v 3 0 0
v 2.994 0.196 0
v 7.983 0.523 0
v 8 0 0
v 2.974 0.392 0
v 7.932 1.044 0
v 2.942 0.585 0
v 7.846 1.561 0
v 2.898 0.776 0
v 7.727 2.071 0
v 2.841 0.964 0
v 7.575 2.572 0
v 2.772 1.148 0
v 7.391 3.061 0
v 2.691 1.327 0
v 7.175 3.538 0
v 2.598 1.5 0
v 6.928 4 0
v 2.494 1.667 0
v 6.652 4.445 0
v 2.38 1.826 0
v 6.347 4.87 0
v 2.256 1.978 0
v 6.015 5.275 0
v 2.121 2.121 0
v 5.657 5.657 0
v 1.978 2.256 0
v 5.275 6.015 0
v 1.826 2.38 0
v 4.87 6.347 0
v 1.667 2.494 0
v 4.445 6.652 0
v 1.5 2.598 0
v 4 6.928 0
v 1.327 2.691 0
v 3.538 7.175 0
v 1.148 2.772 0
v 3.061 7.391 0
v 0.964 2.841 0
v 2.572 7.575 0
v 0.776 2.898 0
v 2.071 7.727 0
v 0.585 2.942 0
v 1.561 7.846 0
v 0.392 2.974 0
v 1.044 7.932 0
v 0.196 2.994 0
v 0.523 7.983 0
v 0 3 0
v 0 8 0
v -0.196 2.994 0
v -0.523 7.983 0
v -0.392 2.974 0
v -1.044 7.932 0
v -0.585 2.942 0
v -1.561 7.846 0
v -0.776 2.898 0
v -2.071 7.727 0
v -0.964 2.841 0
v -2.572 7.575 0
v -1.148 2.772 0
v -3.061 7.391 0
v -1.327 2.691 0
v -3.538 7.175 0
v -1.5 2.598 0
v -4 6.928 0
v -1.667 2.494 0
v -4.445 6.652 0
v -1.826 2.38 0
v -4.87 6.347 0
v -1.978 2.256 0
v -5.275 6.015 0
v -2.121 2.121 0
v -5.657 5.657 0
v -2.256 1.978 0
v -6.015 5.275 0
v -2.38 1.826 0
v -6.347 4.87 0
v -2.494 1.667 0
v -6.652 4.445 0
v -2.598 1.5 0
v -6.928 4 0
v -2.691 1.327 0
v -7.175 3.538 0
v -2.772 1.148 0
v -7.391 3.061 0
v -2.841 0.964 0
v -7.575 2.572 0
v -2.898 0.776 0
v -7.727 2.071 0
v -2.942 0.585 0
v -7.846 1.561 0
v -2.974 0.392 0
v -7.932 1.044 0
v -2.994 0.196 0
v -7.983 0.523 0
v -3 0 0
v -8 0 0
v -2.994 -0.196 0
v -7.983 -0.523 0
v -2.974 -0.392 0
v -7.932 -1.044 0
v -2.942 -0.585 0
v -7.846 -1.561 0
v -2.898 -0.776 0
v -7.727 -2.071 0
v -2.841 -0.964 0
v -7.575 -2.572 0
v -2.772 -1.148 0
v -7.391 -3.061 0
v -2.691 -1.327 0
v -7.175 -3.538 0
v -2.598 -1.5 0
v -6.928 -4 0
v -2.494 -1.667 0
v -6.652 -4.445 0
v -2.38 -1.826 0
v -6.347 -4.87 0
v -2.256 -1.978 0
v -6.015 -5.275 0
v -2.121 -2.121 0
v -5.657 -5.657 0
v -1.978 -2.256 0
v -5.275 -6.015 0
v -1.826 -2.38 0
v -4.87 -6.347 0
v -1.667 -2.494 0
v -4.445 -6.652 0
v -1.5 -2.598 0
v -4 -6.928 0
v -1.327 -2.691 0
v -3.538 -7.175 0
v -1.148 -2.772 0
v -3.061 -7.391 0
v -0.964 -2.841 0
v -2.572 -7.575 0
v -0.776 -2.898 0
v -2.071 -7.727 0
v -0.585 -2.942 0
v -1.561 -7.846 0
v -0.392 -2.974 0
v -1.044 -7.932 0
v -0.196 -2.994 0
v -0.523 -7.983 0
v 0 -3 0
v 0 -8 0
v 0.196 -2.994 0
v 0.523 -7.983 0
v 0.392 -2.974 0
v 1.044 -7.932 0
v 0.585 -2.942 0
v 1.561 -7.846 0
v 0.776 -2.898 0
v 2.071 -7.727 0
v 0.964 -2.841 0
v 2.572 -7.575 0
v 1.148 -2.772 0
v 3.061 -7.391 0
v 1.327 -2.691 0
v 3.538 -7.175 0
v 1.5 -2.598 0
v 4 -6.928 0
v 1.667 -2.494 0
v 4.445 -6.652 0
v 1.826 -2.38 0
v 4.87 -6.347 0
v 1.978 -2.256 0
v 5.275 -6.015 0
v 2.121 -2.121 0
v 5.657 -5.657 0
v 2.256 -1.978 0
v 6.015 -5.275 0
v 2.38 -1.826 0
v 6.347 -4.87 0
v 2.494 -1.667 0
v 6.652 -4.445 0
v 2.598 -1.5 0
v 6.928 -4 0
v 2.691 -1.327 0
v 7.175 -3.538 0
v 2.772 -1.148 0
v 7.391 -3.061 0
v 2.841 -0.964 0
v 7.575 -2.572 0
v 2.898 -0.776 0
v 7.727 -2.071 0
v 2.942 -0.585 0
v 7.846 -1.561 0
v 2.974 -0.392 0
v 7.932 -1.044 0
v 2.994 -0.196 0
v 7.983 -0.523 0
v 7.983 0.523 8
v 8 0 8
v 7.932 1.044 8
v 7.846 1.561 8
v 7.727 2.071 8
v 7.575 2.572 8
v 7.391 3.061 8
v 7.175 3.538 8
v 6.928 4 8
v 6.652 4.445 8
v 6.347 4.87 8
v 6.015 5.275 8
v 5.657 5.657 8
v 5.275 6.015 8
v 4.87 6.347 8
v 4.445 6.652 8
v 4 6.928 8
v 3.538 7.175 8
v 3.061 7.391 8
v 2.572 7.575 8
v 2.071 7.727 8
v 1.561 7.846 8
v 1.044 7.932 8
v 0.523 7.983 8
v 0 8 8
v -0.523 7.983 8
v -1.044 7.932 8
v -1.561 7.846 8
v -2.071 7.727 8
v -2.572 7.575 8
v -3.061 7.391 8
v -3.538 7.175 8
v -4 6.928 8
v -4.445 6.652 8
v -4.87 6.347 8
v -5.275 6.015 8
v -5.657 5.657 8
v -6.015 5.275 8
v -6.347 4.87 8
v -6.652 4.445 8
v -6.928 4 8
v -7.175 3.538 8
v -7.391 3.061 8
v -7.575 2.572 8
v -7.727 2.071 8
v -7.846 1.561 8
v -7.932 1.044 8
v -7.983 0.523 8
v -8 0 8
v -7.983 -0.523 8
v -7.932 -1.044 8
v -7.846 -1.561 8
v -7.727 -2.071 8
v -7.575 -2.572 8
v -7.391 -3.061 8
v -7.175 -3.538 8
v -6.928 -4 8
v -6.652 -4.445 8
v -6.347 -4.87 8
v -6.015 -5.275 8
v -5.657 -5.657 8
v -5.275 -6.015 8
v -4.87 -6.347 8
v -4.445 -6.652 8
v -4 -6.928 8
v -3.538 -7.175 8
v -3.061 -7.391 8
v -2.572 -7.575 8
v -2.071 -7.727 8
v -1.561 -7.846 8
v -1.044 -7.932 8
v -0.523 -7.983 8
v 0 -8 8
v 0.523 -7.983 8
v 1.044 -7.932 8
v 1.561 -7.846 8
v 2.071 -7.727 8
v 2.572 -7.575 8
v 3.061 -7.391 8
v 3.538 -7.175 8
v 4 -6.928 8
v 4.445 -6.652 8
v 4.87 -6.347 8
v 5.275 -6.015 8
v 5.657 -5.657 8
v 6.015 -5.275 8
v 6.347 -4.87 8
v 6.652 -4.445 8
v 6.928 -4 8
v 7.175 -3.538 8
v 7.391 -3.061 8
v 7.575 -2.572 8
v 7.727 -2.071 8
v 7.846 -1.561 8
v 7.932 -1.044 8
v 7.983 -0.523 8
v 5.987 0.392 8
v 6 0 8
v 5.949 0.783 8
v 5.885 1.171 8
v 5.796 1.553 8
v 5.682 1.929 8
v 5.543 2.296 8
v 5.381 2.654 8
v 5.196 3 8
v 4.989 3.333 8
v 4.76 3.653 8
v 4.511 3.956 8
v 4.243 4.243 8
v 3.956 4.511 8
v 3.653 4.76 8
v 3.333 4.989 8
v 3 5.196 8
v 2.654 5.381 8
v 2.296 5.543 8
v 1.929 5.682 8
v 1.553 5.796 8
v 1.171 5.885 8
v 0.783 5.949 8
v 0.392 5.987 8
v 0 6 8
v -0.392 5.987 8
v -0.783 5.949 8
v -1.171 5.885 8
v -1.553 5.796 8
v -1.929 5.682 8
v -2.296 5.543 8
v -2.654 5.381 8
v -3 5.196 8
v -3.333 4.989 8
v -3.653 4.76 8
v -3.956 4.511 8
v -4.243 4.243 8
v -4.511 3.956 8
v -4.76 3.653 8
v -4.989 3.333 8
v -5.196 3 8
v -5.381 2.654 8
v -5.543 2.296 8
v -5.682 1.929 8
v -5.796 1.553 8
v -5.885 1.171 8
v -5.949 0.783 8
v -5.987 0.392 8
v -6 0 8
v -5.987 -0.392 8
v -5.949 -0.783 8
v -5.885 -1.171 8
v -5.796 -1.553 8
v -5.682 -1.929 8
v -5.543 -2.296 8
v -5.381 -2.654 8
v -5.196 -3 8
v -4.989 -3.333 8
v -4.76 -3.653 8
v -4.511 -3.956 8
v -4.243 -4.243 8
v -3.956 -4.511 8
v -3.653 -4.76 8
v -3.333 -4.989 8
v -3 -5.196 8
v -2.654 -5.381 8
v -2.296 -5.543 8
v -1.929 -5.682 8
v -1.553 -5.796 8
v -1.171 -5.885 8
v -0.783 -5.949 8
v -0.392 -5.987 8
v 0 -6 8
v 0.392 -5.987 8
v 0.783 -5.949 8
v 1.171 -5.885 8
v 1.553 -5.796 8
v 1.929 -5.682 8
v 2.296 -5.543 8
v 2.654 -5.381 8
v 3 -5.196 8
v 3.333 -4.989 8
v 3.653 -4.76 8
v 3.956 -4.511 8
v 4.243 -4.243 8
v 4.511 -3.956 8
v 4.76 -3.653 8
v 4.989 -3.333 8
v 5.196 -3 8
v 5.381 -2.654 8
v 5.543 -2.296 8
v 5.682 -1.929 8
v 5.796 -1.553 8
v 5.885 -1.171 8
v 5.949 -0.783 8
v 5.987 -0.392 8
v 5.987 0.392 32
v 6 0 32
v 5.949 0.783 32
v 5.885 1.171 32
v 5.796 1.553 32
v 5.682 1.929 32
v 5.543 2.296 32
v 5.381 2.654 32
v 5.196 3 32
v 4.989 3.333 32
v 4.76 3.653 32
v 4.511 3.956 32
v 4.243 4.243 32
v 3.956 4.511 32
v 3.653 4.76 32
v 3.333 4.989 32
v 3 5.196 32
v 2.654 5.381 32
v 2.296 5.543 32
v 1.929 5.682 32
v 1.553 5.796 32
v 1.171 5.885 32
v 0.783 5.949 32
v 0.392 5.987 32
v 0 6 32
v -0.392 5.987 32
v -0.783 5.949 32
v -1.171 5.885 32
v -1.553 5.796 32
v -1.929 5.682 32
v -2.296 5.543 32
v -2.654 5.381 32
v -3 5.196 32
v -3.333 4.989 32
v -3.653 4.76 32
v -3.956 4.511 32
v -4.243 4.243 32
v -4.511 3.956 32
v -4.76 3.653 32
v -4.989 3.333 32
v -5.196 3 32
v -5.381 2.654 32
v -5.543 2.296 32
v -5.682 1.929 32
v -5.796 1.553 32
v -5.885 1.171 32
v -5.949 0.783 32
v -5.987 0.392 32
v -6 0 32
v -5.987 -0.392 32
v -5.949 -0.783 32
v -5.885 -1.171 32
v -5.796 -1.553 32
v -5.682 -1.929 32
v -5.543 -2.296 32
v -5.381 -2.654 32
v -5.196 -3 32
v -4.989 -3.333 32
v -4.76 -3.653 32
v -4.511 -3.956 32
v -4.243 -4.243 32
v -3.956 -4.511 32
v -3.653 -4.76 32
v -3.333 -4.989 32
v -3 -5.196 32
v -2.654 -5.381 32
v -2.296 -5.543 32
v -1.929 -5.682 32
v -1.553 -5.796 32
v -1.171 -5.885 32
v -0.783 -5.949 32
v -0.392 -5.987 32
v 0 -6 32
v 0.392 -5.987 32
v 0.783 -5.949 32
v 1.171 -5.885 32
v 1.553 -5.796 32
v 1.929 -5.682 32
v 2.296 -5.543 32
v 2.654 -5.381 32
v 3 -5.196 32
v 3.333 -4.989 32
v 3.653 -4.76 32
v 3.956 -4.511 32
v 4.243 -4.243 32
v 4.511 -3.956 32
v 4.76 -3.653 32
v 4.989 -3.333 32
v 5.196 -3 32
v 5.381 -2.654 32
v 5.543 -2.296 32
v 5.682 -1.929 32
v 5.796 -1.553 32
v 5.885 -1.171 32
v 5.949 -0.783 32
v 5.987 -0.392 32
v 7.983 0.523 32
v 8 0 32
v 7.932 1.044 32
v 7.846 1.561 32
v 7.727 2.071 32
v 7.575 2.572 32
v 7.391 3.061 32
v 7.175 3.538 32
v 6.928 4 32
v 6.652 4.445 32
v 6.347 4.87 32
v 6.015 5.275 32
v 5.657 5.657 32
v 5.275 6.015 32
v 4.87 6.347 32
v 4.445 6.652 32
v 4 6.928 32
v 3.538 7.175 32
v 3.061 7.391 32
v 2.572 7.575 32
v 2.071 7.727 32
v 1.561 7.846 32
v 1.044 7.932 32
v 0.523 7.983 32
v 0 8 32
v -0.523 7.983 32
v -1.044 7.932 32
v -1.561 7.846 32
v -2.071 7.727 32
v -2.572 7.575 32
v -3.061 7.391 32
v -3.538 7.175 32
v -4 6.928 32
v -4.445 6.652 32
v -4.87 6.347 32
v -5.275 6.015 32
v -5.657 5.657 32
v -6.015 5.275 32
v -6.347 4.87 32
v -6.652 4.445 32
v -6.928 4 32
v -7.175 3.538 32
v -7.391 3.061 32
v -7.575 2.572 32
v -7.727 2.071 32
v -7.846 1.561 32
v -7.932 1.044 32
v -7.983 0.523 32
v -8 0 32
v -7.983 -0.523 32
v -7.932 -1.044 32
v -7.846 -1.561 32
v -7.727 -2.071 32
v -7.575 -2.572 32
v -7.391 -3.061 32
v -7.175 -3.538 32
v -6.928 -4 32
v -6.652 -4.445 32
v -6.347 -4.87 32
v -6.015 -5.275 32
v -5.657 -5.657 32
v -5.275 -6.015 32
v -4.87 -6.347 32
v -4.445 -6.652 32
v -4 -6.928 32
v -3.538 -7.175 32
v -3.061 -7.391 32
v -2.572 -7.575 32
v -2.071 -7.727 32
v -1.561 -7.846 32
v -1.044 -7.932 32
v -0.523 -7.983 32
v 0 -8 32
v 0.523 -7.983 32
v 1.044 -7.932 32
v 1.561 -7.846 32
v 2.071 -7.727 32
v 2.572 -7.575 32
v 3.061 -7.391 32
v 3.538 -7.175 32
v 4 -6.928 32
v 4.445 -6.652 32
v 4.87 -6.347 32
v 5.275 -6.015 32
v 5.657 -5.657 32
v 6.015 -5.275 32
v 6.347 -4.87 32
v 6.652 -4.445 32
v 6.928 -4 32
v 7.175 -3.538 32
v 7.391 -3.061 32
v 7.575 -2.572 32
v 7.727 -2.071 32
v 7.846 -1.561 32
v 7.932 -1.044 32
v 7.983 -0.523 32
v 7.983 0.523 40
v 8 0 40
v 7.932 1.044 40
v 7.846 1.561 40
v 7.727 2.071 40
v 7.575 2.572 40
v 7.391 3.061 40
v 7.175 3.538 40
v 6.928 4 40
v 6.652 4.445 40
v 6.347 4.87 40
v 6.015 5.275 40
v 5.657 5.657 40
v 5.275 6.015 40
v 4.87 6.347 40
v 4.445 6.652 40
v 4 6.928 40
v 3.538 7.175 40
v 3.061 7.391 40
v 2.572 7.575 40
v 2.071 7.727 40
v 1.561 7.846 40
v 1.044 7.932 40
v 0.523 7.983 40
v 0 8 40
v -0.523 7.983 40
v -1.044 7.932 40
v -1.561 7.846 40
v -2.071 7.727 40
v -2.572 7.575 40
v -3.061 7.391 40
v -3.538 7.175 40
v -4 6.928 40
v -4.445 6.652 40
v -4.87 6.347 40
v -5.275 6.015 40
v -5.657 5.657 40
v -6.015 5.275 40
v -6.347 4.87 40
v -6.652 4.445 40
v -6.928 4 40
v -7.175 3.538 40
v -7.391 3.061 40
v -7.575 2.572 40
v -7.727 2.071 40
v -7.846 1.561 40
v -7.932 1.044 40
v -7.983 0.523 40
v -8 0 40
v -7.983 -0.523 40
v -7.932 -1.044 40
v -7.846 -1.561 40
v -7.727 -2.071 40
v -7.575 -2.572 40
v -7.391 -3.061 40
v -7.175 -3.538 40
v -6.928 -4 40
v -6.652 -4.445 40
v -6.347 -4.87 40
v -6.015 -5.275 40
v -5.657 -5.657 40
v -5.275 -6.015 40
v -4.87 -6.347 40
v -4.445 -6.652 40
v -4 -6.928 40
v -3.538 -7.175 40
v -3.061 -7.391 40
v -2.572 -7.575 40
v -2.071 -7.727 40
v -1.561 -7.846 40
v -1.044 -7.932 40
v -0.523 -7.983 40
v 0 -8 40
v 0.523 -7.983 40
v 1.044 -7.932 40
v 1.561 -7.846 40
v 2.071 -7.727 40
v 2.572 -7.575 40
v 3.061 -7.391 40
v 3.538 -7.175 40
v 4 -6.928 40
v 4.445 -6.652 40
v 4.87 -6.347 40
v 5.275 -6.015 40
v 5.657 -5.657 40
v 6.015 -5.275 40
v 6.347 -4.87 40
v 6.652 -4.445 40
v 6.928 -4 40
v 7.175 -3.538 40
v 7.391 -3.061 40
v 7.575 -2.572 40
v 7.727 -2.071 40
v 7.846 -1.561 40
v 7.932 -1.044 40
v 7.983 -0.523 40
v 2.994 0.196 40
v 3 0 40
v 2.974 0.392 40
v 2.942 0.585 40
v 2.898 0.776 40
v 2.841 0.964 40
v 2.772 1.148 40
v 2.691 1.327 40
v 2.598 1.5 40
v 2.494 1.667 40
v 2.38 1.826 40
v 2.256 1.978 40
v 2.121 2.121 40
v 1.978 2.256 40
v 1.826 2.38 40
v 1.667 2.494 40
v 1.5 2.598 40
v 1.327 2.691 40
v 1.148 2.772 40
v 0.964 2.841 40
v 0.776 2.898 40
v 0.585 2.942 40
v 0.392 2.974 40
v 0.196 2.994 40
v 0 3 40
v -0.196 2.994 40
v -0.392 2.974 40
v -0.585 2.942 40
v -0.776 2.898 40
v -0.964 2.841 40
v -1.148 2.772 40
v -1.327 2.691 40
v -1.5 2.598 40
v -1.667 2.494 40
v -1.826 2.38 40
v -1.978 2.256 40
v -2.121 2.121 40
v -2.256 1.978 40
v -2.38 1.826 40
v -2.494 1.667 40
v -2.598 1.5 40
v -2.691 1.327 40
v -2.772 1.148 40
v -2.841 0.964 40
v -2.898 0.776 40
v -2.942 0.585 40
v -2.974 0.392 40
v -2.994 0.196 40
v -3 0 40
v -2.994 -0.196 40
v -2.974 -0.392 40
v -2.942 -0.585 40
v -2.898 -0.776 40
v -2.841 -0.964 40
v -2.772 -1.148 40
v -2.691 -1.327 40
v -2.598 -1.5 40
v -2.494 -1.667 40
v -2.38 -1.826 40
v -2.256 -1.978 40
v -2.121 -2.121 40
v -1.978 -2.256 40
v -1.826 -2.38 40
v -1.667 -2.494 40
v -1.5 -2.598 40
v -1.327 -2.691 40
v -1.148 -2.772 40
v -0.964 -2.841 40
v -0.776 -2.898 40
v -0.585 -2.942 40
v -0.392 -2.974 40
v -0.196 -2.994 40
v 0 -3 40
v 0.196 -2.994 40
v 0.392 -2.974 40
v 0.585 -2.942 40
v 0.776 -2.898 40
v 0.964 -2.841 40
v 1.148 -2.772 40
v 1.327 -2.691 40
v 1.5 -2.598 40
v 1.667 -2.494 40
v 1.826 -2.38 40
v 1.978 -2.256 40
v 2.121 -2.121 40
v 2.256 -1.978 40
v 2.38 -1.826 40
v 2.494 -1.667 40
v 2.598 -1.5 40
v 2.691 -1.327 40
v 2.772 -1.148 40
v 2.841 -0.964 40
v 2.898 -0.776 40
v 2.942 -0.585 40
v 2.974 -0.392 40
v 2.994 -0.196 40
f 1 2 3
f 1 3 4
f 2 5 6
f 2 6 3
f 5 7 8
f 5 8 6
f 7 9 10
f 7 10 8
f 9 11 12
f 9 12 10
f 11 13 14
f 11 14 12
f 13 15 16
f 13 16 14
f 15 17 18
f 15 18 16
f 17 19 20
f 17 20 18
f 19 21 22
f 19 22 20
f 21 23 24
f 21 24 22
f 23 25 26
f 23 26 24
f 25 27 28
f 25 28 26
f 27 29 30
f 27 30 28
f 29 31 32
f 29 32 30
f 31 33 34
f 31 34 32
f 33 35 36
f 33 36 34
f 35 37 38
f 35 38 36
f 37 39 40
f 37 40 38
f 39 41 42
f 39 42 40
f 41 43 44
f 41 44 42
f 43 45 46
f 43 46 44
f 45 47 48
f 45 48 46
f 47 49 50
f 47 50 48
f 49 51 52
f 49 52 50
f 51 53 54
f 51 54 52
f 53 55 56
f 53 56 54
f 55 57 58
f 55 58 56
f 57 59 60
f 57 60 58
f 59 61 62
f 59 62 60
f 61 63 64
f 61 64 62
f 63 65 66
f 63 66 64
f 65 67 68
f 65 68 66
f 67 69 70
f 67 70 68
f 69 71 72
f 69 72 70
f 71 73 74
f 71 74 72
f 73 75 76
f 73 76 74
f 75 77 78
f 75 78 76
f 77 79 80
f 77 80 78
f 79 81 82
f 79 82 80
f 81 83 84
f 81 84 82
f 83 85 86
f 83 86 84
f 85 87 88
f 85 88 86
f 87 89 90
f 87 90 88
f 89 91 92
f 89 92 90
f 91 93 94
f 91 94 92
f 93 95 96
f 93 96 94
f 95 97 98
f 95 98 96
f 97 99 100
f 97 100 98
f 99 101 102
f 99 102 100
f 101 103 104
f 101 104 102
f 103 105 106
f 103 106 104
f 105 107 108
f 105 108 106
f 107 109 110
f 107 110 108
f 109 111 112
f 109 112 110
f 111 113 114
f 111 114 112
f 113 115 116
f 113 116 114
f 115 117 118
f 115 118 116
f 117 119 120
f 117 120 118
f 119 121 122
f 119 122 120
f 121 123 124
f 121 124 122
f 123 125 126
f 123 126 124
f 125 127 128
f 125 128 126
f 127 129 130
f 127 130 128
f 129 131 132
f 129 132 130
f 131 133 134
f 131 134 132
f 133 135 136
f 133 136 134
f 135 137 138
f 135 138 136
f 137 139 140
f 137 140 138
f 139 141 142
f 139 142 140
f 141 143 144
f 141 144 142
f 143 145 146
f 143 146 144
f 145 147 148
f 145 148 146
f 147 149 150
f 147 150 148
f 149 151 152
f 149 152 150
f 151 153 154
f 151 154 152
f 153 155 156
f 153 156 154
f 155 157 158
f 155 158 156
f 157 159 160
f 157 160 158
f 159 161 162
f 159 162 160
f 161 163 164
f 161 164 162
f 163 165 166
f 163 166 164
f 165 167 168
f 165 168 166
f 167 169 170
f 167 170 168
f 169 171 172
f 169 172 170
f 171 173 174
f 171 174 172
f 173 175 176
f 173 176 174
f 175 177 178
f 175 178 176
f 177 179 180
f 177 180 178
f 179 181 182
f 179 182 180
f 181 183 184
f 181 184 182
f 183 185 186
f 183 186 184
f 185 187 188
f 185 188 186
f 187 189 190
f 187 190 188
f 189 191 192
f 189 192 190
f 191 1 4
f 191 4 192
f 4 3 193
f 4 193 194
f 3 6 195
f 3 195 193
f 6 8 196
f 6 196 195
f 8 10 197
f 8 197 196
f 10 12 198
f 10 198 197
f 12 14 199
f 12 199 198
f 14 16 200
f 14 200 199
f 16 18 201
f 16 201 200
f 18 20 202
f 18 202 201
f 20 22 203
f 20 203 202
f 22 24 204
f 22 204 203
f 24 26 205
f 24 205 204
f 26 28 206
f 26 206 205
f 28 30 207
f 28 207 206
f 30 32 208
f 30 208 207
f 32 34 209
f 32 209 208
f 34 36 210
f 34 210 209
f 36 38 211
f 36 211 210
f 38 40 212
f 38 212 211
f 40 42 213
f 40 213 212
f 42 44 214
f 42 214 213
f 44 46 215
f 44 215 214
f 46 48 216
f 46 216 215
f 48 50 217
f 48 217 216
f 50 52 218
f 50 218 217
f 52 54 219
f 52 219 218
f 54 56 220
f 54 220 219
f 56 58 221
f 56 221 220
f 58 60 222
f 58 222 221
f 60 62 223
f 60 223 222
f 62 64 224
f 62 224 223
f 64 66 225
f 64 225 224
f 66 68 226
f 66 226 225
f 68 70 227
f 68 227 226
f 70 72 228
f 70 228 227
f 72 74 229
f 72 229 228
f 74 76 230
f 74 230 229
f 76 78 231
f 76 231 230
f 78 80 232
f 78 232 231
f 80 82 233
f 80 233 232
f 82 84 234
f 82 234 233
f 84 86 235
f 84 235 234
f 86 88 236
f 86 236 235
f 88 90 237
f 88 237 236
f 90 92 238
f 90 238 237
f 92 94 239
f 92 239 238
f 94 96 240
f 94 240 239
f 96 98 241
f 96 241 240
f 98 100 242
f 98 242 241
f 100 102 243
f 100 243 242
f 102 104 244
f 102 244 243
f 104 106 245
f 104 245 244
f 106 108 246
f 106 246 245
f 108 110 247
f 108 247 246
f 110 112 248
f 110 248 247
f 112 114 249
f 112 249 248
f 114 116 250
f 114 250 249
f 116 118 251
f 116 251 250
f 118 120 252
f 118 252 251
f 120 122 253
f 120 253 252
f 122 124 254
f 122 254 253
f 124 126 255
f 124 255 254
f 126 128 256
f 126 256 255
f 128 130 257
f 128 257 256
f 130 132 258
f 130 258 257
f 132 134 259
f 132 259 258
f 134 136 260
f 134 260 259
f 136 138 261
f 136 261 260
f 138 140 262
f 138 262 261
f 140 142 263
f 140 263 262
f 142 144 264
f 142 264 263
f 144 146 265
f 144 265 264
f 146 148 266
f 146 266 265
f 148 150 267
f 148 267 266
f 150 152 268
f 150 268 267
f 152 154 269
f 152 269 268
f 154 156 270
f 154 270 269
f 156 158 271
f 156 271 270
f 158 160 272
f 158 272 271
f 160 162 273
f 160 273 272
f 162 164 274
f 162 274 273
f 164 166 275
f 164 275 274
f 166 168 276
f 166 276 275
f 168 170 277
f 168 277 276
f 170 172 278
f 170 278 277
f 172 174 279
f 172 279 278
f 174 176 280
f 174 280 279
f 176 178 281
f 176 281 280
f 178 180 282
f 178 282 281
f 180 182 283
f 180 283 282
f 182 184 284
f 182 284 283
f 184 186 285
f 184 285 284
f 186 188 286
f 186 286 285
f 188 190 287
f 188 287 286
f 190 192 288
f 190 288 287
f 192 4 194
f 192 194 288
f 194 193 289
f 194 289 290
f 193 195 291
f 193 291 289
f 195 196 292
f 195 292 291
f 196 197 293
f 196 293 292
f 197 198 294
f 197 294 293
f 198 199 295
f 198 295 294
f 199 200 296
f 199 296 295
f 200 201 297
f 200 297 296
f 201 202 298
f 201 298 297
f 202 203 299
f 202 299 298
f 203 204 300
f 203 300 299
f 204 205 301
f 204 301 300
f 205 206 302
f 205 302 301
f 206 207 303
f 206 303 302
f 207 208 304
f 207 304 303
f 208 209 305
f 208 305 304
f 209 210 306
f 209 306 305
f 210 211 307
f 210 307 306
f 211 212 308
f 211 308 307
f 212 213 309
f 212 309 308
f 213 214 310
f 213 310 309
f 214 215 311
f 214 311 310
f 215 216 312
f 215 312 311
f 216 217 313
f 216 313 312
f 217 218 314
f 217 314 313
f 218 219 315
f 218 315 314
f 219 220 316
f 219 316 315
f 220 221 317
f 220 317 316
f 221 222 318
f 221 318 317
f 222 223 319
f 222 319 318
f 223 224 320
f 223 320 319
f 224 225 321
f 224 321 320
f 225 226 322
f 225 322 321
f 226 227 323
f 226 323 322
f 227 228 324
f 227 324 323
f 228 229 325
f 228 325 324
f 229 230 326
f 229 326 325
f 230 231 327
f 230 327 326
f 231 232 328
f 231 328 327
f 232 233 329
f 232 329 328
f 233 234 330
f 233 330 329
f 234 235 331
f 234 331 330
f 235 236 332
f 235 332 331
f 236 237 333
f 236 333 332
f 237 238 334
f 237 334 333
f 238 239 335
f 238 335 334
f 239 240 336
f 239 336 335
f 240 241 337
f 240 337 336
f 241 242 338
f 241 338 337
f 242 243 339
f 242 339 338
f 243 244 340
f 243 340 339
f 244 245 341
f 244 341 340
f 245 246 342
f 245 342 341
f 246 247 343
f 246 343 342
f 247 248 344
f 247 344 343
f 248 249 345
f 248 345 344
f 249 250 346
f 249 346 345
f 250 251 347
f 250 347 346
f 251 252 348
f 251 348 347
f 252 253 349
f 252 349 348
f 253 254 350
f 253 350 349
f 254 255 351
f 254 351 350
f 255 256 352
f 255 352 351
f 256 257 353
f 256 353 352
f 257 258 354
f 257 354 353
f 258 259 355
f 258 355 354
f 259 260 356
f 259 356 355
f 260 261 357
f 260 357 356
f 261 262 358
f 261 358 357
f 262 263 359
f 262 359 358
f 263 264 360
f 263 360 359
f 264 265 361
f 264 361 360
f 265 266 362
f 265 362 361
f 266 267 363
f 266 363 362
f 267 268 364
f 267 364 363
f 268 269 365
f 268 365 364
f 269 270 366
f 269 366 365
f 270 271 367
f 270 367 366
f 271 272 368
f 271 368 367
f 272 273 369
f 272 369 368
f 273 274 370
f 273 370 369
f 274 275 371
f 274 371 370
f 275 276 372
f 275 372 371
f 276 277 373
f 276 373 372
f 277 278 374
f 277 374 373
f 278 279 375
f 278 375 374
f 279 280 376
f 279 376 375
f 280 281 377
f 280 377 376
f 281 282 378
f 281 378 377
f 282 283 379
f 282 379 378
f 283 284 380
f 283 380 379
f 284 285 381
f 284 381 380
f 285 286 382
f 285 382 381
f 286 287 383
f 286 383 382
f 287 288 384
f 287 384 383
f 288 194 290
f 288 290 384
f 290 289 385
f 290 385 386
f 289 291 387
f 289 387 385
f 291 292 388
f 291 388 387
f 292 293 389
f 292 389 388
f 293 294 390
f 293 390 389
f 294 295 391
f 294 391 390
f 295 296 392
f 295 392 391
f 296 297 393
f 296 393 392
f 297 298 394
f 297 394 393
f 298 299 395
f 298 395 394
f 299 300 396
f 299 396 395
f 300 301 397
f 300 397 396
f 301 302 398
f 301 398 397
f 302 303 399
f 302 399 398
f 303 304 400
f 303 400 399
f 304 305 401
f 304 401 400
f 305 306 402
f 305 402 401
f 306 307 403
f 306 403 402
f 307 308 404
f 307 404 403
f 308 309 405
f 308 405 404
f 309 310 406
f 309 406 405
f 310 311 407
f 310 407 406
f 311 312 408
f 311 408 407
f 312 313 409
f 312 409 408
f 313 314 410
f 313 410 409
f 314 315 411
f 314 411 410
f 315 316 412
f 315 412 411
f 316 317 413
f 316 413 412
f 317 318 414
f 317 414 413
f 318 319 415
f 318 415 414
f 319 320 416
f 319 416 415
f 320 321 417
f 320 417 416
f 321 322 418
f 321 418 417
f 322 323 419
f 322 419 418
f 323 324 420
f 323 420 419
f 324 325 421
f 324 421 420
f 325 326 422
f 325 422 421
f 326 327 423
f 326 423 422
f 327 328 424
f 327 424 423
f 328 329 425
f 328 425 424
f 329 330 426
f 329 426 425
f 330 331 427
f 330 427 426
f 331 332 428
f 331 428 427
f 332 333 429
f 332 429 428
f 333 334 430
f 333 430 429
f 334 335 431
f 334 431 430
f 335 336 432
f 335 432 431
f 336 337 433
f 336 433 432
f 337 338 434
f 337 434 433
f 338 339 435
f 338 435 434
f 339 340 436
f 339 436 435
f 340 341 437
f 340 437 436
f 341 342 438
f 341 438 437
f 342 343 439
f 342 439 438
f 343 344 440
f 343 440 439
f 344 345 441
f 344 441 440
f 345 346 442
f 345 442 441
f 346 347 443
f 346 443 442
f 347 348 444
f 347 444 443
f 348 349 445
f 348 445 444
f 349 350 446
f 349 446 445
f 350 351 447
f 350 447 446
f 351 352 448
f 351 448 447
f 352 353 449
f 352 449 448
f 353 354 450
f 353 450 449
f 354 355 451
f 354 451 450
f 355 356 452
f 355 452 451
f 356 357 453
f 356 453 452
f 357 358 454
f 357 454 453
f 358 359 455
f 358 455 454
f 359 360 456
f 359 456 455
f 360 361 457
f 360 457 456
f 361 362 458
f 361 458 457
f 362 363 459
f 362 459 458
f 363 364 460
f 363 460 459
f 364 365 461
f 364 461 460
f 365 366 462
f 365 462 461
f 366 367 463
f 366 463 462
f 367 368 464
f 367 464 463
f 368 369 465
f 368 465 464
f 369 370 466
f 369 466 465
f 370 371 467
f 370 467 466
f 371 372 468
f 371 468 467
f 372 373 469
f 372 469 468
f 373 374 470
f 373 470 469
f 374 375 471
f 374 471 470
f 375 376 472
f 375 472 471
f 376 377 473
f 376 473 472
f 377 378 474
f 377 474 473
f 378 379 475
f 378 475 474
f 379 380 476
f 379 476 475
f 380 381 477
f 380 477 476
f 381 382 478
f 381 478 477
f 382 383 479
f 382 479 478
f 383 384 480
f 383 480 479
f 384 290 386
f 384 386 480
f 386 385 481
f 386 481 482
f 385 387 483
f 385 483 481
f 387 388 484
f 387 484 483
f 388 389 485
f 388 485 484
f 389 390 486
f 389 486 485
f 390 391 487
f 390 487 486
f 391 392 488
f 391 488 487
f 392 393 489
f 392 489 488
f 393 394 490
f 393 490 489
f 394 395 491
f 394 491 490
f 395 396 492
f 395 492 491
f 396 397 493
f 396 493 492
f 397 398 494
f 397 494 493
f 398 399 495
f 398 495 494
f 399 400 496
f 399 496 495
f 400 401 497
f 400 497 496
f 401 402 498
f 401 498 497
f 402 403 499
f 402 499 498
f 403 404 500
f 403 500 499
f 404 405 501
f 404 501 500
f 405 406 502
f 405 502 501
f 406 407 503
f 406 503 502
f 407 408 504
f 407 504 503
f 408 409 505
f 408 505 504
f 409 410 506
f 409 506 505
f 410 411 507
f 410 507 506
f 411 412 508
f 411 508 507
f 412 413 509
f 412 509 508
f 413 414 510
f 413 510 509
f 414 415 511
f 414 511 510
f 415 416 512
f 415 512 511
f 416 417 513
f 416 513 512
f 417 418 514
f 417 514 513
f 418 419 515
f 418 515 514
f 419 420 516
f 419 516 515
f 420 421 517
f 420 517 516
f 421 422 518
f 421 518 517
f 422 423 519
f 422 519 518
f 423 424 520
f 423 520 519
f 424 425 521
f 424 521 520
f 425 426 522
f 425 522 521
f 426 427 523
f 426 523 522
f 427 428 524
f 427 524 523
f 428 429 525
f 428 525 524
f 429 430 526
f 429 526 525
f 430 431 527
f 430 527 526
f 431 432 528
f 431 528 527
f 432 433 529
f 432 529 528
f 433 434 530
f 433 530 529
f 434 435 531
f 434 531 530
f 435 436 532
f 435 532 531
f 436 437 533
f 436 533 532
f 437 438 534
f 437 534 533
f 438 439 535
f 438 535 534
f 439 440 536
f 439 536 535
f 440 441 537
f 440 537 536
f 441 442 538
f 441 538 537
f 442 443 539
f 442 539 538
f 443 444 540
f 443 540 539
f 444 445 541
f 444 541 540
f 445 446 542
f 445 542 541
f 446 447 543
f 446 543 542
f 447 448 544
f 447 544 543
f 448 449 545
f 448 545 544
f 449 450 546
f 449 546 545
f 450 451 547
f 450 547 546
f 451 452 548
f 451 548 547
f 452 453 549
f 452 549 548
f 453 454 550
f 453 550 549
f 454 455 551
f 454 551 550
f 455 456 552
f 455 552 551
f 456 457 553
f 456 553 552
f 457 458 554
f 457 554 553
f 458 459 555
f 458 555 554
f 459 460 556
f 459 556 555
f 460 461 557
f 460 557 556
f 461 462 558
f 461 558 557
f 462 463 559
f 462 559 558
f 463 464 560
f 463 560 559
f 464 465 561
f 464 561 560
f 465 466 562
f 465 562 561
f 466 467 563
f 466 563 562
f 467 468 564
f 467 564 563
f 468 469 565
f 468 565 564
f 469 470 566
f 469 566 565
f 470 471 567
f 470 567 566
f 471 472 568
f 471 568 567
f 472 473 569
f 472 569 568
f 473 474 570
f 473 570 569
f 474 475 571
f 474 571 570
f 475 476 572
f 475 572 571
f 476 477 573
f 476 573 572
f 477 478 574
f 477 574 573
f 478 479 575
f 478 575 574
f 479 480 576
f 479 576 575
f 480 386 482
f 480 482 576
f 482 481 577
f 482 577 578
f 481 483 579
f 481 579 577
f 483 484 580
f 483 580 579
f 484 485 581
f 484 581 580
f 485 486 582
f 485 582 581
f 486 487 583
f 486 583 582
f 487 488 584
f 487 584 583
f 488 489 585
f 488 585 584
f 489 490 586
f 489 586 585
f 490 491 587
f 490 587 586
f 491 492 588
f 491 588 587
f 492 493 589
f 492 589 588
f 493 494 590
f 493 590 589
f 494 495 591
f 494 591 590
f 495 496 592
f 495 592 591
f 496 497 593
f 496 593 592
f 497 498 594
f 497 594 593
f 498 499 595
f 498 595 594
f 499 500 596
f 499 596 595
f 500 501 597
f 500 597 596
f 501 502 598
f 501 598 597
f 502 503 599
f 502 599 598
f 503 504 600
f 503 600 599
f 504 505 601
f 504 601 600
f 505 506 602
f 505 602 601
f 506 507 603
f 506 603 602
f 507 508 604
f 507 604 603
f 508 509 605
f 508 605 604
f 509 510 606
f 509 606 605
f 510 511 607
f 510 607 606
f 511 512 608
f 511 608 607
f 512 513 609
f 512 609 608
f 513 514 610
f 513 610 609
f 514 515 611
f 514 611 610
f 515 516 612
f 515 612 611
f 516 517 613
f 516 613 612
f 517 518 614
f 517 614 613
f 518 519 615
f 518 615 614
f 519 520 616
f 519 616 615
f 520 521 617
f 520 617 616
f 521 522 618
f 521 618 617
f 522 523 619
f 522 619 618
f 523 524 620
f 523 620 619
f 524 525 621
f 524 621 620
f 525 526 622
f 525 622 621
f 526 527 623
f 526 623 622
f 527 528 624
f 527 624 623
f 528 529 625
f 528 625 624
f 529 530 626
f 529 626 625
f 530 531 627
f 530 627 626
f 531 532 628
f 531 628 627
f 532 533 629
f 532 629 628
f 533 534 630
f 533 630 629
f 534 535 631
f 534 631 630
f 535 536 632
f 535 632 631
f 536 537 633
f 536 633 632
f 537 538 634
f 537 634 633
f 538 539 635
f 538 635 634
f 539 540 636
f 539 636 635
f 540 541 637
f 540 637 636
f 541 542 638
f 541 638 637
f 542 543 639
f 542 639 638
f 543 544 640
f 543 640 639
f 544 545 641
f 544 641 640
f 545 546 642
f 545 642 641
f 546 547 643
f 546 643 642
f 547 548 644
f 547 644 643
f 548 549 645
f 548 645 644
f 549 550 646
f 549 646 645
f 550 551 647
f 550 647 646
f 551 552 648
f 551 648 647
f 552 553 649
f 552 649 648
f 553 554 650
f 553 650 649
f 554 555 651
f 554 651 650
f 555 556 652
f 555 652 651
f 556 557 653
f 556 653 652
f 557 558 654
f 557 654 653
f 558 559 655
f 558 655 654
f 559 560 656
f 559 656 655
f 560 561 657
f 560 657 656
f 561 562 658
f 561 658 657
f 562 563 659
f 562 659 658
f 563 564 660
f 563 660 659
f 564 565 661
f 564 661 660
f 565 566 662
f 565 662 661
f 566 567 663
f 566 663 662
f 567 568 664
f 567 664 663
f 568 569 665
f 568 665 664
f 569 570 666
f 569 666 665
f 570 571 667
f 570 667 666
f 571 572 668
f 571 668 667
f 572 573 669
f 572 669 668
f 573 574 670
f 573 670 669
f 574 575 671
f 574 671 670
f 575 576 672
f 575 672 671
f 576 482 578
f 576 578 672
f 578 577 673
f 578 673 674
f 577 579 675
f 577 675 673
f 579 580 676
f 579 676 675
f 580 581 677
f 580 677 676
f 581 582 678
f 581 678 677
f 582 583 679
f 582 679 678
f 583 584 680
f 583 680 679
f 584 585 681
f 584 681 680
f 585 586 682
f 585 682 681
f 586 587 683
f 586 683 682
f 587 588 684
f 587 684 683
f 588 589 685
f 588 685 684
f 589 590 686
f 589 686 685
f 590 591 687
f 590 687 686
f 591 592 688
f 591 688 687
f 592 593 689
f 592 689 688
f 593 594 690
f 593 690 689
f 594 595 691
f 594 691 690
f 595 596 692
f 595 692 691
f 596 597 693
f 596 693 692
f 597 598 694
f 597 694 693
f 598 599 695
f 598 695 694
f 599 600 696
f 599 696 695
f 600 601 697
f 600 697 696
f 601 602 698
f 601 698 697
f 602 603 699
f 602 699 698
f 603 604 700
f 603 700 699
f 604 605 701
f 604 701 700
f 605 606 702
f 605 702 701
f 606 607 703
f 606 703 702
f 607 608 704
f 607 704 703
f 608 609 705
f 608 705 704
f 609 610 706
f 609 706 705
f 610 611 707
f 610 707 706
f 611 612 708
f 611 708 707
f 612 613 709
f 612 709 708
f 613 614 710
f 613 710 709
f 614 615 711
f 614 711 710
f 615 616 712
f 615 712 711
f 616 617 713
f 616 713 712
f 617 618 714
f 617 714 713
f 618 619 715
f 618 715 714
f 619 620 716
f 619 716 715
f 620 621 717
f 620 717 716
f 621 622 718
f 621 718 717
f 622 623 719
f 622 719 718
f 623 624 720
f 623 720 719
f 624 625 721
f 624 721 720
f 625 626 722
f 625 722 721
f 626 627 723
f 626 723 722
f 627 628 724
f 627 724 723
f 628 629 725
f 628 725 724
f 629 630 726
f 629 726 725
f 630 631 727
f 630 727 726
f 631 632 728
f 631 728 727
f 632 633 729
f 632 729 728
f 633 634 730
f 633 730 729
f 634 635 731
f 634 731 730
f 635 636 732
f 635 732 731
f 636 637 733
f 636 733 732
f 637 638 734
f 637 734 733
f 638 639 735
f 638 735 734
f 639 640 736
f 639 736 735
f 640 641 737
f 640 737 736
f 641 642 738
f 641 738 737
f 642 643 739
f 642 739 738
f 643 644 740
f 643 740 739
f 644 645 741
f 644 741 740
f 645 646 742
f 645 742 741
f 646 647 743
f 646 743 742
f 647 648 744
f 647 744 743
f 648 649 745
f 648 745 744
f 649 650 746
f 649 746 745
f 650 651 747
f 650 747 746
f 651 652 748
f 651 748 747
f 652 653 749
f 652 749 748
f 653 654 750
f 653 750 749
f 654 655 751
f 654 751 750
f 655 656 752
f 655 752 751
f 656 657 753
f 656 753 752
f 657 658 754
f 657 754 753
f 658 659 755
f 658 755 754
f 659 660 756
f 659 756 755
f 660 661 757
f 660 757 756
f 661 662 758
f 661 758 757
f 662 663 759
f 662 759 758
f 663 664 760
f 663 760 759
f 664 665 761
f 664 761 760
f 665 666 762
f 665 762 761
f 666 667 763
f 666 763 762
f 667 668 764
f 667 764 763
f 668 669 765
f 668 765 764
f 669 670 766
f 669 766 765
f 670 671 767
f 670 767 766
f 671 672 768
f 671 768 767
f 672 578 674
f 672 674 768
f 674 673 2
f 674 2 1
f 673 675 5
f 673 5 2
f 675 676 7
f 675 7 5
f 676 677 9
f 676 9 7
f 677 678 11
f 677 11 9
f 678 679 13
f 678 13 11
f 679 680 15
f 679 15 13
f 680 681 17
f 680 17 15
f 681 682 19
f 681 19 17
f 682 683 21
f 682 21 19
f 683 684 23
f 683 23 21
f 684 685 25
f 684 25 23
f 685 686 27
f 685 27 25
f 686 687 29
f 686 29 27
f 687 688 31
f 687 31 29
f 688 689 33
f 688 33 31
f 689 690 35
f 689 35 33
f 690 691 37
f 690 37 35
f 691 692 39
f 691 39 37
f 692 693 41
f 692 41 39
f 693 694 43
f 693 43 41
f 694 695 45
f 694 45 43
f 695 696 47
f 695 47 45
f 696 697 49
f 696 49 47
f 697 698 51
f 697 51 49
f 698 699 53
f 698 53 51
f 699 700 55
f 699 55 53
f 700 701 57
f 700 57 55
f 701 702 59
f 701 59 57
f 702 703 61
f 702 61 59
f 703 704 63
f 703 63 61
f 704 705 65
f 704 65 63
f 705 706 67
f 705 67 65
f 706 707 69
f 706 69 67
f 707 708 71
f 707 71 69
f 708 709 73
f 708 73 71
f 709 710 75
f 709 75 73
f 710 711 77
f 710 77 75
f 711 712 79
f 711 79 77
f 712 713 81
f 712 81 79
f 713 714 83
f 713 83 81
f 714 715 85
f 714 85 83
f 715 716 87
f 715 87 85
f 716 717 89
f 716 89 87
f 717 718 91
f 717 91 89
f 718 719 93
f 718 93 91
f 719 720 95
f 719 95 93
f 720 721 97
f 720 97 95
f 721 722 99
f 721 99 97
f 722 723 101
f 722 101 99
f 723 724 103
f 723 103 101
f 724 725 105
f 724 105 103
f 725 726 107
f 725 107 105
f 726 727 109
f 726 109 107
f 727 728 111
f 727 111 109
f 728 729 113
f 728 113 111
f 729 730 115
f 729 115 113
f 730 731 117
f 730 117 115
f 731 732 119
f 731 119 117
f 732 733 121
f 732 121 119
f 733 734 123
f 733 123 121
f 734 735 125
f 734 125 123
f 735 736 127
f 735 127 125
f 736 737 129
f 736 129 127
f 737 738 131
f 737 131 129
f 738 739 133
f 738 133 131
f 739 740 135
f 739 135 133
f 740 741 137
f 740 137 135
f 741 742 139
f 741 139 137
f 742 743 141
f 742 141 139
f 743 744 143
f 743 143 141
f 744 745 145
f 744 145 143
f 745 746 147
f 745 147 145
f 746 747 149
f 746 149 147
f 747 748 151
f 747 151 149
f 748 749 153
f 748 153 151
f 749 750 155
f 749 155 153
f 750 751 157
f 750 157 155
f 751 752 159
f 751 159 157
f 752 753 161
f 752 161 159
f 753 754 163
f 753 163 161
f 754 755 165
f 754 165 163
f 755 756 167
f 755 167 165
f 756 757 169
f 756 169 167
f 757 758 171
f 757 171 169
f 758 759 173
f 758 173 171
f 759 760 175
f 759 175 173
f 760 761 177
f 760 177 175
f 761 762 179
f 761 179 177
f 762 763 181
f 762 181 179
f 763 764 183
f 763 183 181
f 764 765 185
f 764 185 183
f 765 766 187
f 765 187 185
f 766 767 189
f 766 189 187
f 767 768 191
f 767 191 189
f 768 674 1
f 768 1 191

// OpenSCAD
// Original MechIntel educational model. CC0-1.0. Units: mm.
// Not a standardized or load-rated component.
$fn=96;
// Section points: [radius, height], mm. Edit to change the profile.
section=[[3, 0], [8, 0], [8, 8], [6, 8], [6, 32], [8, 32], [8, 40], [3, 40]];
rotate_extrude($fn=96) polygon(points=section);
